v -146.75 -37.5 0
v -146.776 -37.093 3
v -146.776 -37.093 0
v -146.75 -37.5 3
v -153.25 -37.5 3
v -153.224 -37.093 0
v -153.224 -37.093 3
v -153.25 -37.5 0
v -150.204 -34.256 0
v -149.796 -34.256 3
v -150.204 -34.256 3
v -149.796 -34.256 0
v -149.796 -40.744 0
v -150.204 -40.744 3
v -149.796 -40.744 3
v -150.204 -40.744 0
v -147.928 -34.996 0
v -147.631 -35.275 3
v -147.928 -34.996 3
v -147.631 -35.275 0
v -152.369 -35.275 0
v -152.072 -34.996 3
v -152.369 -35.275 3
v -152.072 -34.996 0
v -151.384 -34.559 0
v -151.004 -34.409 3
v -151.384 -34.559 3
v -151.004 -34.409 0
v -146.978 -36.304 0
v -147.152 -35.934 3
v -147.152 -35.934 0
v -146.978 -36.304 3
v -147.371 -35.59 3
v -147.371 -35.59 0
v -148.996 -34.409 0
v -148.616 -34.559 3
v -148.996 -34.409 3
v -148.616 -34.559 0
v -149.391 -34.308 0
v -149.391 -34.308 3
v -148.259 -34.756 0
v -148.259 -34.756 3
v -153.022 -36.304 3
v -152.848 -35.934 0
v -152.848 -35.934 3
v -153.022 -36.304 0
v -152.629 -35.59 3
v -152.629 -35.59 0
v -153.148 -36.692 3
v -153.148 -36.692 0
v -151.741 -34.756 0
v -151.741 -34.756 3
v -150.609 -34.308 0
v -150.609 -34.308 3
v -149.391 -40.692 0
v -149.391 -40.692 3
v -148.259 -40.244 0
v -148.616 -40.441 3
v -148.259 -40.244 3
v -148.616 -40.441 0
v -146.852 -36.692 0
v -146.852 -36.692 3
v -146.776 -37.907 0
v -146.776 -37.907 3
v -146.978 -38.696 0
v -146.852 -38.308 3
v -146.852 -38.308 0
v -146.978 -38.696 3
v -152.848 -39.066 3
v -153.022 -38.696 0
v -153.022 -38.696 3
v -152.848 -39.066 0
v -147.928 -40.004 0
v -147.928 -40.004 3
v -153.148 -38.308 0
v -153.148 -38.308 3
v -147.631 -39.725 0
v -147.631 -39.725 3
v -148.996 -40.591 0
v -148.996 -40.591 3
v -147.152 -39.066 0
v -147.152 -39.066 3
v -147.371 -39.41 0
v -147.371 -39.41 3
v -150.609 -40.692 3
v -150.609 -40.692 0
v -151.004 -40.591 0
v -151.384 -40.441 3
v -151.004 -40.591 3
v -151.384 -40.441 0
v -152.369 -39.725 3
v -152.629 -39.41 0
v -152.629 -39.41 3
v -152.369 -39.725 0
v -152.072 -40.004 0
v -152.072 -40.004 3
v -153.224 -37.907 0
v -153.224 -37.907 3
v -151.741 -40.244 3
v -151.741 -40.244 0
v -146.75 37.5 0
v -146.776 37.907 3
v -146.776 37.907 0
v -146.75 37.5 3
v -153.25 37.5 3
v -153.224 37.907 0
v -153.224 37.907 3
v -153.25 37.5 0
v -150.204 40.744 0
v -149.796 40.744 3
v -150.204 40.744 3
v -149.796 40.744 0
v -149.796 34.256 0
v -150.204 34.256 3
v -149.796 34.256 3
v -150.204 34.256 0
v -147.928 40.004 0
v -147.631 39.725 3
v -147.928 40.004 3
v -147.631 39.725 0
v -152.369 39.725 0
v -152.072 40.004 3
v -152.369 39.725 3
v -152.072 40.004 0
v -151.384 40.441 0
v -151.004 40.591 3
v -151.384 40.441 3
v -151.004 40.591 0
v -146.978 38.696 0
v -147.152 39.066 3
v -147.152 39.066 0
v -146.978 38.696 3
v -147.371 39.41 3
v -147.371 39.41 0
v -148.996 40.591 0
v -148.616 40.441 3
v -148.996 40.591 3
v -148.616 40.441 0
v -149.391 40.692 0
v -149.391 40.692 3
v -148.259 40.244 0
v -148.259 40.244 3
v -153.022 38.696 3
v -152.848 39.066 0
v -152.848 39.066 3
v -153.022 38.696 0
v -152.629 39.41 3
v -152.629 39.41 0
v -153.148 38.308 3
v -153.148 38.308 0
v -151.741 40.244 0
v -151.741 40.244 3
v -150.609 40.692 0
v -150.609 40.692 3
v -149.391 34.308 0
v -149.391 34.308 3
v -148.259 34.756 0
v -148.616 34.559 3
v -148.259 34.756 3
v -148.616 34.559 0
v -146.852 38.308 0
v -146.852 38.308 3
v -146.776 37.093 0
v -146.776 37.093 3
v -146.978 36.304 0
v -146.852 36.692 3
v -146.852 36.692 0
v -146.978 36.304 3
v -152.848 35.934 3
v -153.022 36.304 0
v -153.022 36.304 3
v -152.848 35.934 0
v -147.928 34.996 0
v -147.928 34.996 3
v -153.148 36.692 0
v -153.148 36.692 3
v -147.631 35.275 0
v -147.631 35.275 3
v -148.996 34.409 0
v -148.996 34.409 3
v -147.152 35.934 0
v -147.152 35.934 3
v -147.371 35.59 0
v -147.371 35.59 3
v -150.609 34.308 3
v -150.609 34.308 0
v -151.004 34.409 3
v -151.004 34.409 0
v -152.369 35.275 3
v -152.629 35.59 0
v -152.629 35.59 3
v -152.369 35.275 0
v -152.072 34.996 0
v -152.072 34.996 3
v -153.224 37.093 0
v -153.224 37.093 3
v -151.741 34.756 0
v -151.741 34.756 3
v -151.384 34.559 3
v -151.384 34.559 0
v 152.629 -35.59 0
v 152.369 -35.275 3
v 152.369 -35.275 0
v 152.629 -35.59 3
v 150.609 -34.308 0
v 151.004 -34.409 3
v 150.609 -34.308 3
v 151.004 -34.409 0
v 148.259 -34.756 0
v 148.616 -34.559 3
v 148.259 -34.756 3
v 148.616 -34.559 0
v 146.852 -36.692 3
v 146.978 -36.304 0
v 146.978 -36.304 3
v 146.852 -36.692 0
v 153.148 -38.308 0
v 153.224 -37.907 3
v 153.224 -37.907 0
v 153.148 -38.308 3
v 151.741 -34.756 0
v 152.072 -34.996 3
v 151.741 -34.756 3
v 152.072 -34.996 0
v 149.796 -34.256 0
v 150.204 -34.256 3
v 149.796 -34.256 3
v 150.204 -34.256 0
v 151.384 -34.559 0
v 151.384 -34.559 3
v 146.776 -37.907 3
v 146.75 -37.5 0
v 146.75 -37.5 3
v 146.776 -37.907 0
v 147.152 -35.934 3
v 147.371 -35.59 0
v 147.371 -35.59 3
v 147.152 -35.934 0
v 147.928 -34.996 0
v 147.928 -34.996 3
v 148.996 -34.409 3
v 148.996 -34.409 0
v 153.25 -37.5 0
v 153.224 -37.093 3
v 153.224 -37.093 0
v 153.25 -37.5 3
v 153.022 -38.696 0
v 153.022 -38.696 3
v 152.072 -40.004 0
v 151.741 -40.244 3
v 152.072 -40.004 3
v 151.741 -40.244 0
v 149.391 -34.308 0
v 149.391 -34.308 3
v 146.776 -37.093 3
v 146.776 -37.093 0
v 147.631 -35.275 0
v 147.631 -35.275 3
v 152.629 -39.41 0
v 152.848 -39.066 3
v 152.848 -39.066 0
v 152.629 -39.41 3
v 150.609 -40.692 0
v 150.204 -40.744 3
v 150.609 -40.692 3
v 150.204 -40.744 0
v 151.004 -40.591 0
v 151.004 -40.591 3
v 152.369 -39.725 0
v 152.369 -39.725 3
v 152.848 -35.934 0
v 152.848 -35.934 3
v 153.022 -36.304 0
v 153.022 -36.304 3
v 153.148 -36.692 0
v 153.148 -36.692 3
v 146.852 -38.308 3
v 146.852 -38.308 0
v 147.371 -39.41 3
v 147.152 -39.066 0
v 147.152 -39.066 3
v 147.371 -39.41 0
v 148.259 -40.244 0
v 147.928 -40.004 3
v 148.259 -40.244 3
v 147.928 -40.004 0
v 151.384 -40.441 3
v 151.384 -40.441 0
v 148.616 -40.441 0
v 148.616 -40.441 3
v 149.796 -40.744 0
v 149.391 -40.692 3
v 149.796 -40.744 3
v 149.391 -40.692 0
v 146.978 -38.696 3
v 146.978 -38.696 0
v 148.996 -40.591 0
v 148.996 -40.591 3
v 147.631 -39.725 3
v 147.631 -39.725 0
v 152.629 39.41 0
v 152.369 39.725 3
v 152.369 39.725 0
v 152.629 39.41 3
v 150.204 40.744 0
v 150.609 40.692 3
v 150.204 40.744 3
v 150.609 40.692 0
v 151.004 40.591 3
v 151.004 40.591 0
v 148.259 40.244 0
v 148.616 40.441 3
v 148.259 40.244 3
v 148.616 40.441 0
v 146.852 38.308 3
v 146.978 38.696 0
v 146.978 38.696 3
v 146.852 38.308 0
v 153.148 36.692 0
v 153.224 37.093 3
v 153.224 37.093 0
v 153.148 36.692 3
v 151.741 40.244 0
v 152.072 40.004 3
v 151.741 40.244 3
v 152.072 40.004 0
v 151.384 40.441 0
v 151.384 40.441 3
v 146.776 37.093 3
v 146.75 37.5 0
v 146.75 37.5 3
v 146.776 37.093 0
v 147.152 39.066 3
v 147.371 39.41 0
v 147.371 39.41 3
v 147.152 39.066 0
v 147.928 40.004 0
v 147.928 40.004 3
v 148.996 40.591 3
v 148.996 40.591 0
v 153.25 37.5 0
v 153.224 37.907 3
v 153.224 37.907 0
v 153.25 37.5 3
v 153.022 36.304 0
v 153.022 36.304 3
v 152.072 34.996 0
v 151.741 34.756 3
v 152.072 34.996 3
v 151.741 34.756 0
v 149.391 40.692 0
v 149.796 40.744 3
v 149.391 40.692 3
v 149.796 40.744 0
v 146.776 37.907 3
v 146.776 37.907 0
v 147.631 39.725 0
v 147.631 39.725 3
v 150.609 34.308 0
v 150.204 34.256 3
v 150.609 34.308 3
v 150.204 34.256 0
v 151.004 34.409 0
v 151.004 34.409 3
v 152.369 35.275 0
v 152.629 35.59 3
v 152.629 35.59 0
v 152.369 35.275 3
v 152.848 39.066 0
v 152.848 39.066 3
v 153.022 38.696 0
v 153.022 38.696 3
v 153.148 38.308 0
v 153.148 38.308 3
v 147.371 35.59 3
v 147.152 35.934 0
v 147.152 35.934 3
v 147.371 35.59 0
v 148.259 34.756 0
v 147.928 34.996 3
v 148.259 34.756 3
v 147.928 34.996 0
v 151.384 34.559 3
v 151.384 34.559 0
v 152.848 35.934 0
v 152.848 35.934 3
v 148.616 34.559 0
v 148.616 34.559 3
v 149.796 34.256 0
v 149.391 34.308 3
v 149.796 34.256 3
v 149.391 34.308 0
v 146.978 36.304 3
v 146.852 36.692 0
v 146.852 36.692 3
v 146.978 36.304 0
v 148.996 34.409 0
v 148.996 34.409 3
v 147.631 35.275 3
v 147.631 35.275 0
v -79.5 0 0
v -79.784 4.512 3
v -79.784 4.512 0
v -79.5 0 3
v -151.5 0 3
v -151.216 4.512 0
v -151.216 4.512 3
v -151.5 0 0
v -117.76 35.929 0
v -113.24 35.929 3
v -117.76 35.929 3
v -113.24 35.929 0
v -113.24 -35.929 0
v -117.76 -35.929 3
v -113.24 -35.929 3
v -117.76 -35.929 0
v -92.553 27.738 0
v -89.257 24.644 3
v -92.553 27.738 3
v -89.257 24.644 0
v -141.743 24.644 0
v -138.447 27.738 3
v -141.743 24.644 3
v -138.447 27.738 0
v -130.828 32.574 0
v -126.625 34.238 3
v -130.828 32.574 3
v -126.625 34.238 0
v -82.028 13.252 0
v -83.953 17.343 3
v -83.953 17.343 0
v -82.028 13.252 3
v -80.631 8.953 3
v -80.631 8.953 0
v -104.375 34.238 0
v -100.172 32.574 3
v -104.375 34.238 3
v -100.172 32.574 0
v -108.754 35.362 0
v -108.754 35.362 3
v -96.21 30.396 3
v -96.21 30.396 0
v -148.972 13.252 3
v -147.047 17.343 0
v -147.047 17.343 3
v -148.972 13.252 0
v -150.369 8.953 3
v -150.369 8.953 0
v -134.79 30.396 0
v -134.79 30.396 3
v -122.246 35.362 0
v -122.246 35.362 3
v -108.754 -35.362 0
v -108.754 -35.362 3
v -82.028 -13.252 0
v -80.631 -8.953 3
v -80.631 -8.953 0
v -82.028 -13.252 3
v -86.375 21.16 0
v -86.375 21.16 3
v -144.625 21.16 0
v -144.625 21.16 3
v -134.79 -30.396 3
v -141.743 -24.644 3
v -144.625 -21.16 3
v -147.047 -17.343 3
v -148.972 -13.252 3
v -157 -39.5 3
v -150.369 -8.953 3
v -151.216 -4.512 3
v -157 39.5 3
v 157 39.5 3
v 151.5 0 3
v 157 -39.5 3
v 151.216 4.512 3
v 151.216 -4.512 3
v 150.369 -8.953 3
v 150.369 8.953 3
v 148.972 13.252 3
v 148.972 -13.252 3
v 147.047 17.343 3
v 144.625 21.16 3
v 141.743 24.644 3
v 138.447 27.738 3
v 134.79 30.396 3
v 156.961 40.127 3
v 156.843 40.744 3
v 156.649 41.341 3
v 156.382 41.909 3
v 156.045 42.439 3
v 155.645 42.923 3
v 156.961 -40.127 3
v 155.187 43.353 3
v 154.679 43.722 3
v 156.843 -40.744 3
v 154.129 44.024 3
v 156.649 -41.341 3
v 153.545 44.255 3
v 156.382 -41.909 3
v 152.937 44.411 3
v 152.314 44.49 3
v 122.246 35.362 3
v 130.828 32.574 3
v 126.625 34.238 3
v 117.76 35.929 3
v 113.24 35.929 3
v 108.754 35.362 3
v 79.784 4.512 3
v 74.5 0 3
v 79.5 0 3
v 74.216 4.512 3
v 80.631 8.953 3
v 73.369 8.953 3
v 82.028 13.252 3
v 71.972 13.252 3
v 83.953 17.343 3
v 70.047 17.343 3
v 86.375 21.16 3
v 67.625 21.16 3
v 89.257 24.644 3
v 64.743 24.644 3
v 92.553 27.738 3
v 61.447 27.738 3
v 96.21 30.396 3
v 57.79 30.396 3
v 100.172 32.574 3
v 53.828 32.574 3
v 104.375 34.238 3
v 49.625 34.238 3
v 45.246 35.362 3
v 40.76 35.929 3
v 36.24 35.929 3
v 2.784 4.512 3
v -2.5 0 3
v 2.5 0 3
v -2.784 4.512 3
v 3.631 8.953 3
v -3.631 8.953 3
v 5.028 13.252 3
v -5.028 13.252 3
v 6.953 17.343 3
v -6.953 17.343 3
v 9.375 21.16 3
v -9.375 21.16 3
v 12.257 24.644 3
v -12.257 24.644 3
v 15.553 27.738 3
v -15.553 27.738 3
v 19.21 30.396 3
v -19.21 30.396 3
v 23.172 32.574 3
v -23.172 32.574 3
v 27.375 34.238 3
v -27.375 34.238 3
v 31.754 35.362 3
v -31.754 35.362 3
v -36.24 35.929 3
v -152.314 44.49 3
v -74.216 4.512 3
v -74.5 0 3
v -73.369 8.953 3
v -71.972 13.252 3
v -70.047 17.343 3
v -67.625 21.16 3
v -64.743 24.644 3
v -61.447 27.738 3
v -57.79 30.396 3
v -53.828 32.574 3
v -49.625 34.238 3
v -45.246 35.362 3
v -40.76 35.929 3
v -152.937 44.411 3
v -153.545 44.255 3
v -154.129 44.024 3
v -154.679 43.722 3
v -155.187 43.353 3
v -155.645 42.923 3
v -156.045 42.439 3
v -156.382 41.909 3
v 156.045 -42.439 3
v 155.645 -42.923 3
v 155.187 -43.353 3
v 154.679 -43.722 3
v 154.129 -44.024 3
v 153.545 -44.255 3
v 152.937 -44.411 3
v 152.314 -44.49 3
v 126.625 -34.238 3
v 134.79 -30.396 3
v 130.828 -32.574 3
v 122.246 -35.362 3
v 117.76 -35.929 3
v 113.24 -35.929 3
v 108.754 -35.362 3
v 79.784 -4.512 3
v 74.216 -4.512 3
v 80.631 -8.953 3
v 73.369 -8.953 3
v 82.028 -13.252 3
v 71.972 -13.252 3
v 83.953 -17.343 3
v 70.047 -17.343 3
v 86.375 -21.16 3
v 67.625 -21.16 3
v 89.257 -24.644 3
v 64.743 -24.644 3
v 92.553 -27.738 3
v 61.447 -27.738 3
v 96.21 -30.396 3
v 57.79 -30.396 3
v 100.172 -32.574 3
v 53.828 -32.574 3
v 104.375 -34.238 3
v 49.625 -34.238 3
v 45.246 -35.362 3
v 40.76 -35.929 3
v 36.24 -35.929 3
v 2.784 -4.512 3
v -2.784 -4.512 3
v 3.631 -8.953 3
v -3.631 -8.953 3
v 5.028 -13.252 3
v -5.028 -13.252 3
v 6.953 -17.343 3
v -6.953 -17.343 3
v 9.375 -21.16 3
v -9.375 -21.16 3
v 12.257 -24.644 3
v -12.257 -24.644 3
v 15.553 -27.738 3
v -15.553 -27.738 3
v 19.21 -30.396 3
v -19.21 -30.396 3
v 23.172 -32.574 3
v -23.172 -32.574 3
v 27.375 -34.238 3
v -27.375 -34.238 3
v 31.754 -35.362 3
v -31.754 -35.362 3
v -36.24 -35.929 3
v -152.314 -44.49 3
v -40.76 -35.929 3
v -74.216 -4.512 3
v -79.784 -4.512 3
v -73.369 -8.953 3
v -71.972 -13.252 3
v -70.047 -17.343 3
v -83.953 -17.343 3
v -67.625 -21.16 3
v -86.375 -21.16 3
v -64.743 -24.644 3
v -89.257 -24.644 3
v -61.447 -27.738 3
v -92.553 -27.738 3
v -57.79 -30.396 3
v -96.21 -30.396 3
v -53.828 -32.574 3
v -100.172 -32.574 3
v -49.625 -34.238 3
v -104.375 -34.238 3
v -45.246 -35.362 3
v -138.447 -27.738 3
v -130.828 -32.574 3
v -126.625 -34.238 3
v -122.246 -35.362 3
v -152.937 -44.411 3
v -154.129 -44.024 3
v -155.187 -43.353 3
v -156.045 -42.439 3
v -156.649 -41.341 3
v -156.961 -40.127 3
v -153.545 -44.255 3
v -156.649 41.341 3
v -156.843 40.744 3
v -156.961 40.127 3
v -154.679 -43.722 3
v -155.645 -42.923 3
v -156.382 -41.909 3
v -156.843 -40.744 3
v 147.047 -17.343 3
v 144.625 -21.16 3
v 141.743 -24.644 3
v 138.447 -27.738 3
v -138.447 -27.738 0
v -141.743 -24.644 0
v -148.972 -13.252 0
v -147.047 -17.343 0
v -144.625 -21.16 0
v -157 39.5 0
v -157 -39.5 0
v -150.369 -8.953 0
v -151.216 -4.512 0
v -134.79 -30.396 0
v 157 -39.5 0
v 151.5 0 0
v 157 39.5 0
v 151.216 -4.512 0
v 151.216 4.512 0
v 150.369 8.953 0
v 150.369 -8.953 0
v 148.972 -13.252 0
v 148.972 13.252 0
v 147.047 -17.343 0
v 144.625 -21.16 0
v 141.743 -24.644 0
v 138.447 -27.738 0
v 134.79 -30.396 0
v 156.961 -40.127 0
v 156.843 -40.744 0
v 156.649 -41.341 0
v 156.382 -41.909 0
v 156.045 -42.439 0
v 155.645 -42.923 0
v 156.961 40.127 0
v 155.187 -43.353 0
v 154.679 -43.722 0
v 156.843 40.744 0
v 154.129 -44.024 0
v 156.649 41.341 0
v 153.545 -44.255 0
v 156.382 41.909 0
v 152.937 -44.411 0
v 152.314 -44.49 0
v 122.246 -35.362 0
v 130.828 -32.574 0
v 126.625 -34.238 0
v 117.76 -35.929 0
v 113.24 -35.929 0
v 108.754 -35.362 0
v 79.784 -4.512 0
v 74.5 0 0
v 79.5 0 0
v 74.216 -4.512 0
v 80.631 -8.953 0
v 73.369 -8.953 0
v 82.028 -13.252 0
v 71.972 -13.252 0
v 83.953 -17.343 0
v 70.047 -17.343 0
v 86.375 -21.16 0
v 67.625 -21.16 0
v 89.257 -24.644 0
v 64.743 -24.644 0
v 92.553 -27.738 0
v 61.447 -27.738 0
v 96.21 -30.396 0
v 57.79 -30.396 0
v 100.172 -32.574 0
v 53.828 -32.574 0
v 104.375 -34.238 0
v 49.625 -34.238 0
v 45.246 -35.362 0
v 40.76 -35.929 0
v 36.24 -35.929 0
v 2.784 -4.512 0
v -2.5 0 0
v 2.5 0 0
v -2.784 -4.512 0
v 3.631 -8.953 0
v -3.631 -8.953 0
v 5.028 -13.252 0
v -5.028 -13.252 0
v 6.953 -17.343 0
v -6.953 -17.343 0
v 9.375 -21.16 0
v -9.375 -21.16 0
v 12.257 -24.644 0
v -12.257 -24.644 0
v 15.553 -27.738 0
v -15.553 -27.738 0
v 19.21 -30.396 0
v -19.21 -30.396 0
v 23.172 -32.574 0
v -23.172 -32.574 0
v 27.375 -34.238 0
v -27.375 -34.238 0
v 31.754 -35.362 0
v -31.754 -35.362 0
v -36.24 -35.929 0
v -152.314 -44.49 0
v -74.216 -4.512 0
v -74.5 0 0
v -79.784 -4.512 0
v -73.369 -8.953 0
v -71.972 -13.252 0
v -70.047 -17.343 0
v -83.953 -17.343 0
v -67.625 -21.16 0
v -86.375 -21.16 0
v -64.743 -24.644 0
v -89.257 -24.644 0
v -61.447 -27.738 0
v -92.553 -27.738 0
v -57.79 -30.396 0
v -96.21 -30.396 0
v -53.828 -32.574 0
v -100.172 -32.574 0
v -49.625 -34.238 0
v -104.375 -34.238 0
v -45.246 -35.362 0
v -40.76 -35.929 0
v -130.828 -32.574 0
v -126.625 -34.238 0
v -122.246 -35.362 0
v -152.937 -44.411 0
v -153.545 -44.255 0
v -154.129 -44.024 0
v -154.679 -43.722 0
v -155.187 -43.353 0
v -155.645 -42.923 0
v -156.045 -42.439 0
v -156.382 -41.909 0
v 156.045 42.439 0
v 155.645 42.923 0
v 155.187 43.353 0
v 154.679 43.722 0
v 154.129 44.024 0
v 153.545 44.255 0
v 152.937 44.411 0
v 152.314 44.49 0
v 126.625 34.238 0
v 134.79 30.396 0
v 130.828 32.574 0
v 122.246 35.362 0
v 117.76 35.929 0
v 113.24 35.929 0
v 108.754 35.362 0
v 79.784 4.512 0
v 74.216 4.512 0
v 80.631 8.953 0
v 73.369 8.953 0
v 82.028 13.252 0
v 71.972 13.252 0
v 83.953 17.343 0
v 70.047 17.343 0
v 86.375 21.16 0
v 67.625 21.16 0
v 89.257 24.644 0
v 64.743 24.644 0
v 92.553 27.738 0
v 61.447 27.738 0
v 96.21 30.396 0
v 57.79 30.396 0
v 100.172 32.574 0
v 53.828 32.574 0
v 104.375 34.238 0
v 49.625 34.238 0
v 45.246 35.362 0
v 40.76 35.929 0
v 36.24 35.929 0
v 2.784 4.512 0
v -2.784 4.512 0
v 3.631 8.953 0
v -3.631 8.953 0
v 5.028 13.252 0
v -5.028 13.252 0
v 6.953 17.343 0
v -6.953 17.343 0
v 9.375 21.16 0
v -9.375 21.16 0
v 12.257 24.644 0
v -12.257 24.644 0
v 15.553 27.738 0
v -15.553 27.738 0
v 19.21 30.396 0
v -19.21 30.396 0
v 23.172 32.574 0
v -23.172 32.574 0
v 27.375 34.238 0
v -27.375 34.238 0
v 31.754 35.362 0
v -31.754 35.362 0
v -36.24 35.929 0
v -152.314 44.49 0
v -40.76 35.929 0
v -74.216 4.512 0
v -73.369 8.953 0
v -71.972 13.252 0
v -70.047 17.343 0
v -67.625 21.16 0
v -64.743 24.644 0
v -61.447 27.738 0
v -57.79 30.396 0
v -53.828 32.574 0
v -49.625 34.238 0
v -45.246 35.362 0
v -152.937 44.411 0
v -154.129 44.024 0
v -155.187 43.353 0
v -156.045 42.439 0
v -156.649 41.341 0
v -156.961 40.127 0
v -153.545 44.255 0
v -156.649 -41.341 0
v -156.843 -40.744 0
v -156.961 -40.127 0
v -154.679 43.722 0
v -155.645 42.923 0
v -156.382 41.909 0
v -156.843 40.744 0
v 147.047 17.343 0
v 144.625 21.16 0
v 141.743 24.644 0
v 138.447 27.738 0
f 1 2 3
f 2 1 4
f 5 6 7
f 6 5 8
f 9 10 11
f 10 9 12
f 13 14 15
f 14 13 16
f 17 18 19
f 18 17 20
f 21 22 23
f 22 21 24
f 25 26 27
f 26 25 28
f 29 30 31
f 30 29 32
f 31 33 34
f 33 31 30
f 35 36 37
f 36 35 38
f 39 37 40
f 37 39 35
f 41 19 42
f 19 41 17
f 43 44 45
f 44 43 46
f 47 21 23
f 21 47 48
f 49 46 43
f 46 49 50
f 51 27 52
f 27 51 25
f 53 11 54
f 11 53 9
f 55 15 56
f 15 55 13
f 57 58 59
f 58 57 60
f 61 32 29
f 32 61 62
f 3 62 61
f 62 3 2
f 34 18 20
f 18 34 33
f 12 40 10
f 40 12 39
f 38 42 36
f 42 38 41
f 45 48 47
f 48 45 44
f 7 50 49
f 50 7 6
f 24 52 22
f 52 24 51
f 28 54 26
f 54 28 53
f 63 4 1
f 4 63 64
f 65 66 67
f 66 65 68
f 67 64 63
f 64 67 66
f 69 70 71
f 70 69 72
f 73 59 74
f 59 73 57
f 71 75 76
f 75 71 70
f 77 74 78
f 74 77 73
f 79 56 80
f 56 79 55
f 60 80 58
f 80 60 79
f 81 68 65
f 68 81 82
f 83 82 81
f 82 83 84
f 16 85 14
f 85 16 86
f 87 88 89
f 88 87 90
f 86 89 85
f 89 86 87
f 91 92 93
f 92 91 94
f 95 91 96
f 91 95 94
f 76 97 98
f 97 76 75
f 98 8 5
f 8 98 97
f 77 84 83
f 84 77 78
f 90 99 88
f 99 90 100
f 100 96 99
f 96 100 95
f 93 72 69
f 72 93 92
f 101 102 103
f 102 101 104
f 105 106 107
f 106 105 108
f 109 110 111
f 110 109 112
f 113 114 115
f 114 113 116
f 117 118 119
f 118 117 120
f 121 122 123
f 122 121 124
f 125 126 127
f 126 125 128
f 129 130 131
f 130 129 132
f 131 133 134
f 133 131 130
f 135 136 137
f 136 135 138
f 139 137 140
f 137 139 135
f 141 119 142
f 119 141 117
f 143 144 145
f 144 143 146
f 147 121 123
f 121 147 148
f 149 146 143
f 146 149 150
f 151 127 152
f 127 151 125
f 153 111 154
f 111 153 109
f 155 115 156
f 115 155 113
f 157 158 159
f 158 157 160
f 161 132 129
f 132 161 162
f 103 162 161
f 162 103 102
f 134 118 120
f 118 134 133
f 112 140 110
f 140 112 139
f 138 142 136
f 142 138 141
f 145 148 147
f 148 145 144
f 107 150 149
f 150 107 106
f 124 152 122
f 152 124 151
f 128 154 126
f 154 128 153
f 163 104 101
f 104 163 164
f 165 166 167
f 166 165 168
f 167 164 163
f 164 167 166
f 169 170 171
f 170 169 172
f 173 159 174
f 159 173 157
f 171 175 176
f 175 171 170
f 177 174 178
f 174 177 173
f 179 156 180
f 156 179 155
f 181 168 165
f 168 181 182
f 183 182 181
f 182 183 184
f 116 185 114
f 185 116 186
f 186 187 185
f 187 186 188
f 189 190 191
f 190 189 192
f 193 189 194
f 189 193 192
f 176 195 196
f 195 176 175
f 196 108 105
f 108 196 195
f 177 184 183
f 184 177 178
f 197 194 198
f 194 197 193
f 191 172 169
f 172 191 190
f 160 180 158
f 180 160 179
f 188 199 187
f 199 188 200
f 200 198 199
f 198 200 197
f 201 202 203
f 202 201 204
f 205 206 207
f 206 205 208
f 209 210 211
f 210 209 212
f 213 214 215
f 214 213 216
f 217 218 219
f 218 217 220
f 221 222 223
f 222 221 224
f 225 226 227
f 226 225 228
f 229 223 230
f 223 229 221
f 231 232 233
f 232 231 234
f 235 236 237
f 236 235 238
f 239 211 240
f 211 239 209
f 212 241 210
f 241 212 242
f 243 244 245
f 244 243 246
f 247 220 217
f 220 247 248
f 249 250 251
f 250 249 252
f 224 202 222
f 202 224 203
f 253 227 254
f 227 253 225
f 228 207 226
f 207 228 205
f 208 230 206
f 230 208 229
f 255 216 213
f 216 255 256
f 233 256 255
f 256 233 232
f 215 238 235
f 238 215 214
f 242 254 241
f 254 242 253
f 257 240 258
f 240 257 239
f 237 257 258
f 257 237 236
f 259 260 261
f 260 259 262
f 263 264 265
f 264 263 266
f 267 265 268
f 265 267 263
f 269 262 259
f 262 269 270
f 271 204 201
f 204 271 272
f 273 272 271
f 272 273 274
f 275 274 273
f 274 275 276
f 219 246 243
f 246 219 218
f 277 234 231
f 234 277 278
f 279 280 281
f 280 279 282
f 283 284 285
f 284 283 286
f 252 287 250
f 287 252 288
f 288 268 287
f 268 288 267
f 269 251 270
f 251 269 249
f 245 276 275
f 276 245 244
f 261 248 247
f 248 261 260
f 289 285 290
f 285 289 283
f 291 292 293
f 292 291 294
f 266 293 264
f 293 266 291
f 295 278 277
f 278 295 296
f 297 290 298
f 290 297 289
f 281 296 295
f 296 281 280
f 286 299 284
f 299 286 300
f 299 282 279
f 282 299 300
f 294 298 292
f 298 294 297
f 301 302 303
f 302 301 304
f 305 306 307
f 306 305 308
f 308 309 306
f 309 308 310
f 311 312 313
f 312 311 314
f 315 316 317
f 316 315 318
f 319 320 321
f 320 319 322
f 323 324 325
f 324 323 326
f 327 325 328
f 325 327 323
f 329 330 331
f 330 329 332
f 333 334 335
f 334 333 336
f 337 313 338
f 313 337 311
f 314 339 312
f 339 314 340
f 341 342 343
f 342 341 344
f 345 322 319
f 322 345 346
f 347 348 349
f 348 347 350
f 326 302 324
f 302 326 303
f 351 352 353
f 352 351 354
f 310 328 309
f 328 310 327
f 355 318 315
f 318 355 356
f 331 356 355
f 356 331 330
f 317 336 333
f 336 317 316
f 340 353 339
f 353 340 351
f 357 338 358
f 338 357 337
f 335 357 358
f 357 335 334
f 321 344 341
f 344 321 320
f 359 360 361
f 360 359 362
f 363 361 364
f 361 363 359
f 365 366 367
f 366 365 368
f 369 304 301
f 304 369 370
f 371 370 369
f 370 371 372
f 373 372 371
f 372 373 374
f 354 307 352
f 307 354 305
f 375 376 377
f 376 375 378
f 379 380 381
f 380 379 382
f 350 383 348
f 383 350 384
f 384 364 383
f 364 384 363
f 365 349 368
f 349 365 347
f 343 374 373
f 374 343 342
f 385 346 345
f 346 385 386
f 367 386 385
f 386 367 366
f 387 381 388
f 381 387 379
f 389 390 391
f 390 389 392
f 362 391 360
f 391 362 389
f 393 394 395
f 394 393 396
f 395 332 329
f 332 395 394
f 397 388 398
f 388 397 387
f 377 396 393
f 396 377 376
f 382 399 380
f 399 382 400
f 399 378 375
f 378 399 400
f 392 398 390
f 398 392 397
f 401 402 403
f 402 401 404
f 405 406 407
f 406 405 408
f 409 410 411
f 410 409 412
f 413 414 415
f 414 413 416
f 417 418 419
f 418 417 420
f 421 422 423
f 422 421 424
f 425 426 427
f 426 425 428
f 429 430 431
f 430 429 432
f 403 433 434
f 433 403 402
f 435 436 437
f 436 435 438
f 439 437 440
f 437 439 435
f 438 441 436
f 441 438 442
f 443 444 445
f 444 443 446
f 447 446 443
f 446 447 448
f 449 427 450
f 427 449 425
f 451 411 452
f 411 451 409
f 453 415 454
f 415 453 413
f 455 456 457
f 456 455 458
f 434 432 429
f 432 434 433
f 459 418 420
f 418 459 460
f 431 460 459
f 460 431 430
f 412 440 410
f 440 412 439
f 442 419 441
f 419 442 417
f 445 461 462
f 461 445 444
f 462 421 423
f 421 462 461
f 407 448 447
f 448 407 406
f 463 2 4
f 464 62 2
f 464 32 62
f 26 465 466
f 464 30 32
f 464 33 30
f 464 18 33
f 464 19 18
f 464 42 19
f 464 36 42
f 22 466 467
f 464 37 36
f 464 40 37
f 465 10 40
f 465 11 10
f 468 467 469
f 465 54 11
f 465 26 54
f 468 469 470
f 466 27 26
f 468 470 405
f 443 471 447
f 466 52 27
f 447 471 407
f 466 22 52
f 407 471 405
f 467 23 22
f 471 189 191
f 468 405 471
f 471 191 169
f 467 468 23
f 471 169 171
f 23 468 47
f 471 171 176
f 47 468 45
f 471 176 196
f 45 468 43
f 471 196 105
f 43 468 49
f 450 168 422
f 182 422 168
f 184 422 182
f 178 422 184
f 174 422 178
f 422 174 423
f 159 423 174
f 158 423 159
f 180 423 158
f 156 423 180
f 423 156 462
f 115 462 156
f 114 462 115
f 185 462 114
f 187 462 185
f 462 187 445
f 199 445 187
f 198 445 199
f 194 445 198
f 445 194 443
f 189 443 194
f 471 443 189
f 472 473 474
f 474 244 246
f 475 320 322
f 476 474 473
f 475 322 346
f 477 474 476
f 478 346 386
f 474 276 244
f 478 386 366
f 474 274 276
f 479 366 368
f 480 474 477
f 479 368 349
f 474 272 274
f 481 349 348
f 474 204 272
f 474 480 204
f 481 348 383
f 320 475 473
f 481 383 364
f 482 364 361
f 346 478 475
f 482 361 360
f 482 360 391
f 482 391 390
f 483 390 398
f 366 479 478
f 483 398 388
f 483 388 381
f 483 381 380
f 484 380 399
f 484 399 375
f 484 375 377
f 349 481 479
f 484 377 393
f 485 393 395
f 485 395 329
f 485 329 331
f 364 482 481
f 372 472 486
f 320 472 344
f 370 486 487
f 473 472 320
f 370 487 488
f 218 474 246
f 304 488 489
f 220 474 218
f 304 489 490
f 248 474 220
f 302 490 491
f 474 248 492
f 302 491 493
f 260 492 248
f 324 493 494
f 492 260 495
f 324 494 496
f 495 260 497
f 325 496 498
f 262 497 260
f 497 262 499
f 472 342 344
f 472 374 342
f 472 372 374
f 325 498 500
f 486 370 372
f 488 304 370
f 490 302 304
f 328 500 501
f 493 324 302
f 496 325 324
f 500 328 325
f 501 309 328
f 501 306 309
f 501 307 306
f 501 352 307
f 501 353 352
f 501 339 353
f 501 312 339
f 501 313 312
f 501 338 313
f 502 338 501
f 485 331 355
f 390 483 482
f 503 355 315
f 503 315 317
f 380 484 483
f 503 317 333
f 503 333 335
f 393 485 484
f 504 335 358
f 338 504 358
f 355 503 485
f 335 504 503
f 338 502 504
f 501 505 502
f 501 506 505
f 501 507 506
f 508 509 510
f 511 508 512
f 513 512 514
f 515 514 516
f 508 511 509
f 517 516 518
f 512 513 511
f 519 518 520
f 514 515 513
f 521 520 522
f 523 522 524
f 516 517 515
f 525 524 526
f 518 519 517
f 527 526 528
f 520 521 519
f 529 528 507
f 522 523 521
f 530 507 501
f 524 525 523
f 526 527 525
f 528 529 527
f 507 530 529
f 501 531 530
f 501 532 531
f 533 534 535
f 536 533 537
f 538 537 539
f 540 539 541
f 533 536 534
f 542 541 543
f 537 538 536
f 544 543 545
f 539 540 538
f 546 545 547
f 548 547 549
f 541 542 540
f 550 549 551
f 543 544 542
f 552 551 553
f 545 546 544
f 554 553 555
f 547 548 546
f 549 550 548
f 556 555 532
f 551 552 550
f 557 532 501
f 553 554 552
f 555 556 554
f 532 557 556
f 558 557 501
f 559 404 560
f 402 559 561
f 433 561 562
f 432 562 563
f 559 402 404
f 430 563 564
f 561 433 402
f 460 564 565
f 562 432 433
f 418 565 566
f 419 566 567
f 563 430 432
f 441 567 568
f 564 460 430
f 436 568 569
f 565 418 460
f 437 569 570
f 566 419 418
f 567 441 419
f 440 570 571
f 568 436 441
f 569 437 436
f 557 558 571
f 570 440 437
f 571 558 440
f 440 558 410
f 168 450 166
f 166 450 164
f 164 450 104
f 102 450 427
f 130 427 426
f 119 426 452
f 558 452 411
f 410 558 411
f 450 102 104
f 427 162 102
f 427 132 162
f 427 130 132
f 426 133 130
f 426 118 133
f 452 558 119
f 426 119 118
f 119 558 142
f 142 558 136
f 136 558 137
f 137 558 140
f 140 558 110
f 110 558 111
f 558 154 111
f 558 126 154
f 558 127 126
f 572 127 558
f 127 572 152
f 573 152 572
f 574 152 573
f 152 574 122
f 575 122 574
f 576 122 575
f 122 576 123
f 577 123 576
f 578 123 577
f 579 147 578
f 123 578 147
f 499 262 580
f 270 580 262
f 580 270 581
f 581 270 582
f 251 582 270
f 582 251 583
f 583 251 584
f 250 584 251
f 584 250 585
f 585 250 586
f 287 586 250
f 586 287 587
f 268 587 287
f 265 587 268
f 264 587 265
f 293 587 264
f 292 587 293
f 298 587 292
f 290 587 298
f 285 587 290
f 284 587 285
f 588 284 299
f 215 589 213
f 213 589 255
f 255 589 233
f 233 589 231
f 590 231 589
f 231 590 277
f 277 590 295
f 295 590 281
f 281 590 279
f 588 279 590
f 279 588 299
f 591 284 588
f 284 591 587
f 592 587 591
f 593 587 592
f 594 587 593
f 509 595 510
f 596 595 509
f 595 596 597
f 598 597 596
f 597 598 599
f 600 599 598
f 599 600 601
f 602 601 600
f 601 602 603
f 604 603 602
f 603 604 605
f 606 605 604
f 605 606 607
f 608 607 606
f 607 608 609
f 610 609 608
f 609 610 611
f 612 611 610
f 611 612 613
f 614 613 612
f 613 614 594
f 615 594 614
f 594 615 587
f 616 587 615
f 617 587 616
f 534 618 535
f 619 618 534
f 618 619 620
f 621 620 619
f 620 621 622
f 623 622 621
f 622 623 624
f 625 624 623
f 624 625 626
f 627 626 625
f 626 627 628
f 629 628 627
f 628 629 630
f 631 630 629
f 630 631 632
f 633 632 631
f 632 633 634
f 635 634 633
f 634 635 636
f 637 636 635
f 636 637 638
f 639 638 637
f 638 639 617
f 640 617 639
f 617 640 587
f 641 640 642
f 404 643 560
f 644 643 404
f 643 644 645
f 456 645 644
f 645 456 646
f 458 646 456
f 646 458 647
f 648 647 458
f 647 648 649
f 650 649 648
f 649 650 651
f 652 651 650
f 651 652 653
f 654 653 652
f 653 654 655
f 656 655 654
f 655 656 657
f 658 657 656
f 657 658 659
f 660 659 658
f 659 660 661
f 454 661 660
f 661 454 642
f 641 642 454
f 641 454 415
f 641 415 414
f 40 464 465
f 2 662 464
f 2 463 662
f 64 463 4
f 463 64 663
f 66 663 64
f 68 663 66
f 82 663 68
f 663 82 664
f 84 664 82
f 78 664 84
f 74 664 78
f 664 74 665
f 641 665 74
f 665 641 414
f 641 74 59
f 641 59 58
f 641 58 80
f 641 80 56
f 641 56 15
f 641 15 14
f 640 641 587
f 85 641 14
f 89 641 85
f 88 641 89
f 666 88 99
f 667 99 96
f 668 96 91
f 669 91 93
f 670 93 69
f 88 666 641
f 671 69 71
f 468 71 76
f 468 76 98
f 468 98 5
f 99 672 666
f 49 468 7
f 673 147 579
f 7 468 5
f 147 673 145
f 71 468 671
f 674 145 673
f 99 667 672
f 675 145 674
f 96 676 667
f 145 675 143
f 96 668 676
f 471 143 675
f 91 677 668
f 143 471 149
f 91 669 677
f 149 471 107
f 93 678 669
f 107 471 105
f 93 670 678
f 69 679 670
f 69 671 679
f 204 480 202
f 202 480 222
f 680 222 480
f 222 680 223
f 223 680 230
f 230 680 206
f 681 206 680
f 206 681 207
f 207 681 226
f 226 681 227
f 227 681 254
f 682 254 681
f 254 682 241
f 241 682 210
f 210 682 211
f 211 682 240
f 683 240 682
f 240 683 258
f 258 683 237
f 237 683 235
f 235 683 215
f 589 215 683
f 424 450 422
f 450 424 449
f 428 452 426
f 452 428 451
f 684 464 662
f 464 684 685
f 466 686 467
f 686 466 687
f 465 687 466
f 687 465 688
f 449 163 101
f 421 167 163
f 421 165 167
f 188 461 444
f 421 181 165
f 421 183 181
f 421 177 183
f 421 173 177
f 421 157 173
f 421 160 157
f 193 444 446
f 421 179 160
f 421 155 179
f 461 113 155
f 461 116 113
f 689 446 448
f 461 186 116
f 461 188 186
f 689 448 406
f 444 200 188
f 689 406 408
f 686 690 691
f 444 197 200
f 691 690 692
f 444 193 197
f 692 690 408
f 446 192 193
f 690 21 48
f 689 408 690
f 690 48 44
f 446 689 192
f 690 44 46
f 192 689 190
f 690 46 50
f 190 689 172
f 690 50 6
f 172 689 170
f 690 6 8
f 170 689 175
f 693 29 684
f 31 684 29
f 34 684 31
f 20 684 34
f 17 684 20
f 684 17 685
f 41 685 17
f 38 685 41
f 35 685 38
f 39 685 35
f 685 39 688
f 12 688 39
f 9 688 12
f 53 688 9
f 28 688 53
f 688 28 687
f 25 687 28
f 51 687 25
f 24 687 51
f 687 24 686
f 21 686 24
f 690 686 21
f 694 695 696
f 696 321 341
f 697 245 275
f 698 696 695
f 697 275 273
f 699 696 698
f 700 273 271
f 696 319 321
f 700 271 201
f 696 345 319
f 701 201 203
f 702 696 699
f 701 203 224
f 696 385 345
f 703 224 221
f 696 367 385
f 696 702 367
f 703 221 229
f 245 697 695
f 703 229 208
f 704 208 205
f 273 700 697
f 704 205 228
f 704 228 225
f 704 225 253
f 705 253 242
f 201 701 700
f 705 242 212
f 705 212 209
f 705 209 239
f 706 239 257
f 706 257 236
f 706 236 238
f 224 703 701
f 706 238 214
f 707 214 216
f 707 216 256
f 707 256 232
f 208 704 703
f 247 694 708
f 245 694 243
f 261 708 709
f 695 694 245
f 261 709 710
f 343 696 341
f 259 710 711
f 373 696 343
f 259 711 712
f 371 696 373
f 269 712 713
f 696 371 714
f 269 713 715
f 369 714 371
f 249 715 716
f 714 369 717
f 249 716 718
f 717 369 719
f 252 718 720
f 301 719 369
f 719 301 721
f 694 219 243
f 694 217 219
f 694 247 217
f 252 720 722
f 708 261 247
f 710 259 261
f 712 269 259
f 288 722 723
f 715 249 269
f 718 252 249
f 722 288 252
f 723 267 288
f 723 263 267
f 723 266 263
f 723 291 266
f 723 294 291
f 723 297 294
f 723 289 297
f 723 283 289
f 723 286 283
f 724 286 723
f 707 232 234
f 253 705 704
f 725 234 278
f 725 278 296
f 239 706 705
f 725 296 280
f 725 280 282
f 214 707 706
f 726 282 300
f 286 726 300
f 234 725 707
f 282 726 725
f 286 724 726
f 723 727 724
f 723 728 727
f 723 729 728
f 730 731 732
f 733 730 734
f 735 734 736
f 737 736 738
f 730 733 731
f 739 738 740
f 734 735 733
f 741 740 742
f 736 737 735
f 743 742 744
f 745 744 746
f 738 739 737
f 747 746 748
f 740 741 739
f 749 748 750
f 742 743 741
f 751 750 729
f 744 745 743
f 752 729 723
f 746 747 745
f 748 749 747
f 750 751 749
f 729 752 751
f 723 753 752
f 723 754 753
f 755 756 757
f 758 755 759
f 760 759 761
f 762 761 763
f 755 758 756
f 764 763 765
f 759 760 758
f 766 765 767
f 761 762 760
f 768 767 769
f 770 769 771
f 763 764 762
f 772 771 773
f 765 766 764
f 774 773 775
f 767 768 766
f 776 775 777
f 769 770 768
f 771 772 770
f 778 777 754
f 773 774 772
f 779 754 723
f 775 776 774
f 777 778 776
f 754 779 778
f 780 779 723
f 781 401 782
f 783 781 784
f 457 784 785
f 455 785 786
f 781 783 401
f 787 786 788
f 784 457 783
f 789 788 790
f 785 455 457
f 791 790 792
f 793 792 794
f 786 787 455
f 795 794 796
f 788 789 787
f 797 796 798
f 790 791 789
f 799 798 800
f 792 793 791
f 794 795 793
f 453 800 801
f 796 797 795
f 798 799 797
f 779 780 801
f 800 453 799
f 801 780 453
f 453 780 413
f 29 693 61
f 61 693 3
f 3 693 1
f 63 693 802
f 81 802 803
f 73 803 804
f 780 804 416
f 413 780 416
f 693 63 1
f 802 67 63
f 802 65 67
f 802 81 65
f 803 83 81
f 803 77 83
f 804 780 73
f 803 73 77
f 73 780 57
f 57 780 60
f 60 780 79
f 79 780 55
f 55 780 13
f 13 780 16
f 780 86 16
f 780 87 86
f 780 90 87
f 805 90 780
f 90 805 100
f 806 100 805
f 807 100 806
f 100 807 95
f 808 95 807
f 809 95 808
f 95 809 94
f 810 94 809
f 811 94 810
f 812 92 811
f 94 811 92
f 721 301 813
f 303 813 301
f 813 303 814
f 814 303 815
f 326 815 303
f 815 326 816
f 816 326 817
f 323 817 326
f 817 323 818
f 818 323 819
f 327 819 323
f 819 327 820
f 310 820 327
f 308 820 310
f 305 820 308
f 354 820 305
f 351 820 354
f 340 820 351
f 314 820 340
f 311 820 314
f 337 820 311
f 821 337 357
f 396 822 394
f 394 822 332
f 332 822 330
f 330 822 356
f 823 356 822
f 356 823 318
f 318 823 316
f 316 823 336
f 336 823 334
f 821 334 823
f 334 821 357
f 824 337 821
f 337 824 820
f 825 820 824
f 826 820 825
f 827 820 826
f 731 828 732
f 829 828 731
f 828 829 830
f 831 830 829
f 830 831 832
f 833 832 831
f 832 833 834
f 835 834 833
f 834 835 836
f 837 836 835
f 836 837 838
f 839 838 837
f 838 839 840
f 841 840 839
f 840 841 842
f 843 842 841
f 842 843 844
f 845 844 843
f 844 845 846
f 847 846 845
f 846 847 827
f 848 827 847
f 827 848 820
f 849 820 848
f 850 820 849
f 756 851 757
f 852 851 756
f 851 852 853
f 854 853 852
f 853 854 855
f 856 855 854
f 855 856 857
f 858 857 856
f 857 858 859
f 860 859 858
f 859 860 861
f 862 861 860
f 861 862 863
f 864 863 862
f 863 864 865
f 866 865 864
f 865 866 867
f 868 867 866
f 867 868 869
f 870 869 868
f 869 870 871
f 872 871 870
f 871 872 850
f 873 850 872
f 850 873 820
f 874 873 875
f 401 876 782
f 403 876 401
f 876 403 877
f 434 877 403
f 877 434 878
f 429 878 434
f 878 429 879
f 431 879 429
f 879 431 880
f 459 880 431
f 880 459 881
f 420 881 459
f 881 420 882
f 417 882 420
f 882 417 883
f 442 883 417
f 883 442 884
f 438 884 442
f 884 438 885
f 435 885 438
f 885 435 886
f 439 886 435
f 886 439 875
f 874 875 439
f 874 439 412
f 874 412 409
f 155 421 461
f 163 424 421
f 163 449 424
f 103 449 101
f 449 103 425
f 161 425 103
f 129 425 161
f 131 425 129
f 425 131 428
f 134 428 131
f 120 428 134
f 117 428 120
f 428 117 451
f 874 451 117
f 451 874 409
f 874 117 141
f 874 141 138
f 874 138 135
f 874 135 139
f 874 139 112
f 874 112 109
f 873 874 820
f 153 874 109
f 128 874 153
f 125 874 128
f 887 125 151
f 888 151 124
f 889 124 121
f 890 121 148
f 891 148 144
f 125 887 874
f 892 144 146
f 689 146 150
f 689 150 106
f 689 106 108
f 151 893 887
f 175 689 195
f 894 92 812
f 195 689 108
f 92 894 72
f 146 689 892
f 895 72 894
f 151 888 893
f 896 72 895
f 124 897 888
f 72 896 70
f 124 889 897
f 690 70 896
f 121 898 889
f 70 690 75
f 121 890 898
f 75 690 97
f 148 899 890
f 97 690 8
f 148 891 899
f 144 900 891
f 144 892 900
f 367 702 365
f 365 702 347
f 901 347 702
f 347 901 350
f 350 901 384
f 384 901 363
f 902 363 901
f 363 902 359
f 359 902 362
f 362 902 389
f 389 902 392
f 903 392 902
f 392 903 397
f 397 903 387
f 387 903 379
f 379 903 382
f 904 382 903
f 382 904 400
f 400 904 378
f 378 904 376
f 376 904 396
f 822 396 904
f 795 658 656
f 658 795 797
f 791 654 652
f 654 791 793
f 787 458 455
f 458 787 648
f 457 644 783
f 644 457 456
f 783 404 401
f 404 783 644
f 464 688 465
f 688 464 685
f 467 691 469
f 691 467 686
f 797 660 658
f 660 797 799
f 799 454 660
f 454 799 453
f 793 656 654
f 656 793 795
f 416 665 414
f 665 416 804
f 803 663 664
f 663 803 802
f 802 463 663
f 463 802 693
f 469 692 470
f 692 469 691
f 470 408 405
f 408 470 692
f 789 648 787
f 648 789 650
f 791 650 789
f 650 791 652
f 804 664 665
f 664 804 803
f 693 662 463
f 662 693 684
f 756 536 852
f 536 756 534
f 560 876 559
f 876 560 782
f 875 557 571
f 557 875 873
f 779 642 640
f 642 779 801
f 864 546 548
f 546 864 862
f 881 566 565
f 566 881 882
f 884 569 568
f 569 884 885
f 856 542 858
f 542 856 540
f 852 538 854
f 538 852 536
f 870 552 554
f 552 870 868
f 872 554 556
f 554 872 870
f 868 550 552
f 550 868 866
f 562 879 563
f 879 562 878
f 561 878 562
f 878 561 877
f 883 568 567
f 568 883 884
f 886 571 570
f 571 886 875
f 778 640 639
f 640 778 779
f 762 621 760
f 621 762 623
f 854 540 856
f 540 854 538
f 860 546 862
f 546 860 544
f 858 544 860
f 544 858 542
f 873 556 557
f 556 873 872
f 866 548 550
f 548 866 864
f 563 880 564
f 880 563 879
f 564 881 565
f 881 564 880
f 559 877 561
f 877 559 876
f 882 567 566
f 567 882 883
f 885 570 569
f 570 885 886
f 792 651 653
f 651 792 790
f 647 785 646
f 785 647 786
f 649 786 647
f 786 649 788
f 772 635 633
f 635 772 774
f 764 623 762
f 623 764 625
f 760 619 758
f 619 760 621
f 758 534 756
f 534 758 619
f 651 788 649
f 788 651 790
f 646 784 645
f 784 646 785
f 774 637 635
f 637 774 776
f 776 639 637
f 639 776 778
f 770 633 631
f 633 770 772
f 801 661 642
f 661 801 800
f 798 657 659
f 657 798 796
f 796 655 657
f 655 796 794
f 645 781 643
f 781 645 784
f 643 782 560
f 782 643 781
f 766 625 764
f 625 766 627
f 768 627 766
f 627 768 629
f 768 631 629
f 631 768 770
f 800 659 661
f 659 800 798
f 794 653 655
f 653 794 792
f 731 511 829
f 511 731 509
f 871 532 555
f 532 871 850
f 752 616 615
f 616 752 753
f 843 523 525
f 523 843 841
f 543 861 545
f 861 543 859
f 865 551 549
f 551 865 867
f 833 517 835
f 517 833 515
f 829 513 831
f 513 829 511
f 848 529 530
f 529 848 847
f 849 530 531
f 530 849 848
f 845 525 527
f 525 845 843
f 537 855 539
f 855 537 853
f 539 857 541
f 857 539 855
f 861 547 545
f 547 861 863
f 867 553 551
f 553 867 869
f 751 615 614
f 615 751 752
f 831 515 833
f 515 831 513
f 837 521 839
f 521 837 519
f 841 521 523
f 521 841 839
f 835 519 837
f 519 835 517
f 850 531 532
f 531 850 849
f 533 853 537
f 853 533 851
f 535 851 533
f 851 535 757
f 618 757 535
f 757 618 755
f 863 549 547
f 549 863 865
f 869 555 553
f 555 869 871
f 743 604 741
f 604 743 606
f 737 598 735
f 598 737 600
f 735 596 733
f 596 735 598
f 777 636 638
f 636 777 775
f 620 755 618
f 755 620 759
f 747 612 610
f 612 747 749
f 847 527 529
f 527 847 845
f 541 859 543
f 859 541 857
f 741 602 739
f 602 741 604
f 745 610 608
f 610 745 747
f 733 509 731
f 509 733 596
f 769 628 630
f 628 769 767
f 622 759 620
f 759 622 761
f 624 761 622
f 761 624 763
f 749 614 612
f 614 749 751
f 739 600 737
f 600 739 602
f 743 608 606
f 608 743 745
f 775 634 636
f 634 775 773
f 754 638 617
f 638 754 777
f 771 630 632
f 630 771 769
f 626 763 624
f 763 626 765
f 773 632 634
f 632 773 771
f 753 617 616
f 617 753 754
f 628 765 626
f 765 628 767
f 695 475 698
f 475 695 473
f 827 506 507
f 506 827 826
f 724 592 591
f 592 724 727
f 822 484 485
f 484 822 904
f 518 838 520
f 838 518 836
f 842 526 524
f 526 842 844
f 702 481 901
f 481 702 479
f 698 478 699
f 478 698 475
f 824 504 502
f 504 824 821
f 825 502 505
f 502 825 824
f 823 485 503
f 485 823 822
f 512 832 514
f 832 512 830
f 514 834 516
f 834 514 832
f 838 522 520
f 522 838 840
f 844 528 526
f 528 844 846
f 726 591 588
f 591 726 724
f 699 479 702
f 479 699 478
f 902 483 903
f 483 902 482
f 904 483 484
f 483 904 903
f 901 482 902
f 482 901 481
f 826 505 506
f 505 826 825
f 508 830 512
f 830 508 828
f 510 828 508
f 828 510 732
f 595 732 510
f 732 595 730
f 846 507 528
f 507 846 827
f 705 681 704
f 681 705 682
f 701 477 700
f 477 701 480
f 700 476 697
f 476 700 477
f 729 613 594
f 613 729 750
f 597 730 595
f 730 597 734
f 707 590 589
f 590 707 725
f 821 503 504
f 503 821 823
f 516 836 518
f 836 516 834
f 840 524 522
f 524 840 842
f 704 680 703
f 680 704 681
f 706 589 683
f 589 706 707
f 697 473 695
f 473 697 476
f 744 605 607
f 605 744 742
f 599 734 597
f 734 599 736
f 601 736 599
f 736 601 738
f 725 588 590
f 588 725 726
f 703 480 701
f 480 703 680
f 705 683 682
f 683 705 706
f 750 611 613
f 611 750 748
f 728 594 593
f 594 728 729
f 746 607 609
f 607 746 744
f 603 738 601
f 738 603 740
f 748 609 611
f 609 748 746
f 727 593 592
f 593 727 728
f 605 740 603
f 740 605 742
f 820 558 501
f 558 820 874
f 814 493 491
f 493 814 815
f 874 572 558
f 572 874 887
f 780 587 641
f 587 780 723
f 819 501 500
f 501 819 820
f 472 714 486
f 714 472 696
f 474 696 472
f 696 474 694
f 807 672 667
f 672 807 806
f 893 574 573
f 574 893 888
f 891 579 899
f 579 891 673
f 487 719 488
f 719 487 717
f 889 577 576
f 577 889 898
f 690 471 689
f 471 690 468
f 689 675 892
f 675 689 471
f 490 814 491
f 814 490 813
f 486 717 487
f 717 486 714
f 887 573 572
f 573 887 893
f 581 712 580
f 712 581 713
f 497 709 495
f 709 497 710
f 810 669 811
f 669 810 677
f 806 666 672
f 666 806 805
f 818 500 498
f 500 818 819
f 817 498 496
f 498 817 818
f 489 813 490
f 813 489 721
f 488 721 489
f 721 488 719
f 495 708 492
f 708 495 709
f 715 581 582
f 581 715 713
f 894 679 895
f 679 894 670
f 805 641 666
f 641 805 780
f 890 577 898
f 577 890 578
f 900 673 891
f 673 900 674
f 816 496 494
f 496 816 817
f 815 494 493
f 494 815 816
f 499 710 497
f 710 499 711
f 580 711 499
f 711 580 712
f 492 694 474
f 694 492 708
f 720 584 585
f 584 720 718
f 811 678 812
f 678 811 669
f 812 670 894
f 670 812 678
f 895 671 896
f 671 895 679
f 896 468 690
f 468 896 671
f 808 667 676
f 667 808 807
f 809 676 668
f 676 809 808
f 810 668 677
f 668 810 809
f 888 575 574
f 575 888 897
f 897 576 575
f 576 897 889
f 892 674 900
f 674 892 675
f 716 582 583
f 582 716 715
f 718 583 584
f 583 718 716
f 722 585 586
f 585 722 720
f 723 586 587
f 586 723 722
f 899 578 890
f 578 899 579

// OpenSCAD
$fn = 50;


difference() {
	union() {
		hull() {
			translate(v = [-152.0000000000, 39.5000000000, 0]) {
				cylinder(h = 3, r = 5);
			}
			translate(v = [152.0000000000, 39.5000000000, 0]) {
				cylinder(h = 3, r = 5);
			}
			translate(v = [-152.0000000000, -39.5000000000, 0]) {
				cylinder(h = 3, r = 5);
			}
			translate(v = [152.0000000000, -39.5000000000, 0]) {
				cylinder(h = 3, r = 5);
			}
		}
	}
	union() {
		#translate(v = [-150.0000000000, -37.5000000000, -100.0000000000]) {
			cylinder(h = 200, r = 3.2500000000);
		}
		#translate(v = [-150.0000000000, 37.5000000000, -100.0000000000]) {
			cylinder(h = 200, r = 3.2500000000);
		}
		#translate(v = [150.0000000000, -37.5000000000, -100.0000000000]) {
			cylinder(h = 200, r = 3.2500000000);
		}
		#translate(v = [150.0000000000, 37.5000000000, -100.0000000000]) {
			cylinder(h = 200, r = 3.2500000000);
		}
		#translate(v = [-115.5000000000, 0, 0]) {
			cylinder(h = 3, r = 36.0000000000);
		}
		#translate(v = [-38.5000000000, 0, 0]) {
			cylinder(h = 3, r = 36.0000000000);
		}
		#translate(v = [38.5000000000, 0, 0]) {
			cylinder(h = 3, r = 36.0000000000);
		}
		#translate(v = [115.5000000000, 0, 0]) {
			cylinder(h = 3, r = 36.0000000000);
		}
	}
}
